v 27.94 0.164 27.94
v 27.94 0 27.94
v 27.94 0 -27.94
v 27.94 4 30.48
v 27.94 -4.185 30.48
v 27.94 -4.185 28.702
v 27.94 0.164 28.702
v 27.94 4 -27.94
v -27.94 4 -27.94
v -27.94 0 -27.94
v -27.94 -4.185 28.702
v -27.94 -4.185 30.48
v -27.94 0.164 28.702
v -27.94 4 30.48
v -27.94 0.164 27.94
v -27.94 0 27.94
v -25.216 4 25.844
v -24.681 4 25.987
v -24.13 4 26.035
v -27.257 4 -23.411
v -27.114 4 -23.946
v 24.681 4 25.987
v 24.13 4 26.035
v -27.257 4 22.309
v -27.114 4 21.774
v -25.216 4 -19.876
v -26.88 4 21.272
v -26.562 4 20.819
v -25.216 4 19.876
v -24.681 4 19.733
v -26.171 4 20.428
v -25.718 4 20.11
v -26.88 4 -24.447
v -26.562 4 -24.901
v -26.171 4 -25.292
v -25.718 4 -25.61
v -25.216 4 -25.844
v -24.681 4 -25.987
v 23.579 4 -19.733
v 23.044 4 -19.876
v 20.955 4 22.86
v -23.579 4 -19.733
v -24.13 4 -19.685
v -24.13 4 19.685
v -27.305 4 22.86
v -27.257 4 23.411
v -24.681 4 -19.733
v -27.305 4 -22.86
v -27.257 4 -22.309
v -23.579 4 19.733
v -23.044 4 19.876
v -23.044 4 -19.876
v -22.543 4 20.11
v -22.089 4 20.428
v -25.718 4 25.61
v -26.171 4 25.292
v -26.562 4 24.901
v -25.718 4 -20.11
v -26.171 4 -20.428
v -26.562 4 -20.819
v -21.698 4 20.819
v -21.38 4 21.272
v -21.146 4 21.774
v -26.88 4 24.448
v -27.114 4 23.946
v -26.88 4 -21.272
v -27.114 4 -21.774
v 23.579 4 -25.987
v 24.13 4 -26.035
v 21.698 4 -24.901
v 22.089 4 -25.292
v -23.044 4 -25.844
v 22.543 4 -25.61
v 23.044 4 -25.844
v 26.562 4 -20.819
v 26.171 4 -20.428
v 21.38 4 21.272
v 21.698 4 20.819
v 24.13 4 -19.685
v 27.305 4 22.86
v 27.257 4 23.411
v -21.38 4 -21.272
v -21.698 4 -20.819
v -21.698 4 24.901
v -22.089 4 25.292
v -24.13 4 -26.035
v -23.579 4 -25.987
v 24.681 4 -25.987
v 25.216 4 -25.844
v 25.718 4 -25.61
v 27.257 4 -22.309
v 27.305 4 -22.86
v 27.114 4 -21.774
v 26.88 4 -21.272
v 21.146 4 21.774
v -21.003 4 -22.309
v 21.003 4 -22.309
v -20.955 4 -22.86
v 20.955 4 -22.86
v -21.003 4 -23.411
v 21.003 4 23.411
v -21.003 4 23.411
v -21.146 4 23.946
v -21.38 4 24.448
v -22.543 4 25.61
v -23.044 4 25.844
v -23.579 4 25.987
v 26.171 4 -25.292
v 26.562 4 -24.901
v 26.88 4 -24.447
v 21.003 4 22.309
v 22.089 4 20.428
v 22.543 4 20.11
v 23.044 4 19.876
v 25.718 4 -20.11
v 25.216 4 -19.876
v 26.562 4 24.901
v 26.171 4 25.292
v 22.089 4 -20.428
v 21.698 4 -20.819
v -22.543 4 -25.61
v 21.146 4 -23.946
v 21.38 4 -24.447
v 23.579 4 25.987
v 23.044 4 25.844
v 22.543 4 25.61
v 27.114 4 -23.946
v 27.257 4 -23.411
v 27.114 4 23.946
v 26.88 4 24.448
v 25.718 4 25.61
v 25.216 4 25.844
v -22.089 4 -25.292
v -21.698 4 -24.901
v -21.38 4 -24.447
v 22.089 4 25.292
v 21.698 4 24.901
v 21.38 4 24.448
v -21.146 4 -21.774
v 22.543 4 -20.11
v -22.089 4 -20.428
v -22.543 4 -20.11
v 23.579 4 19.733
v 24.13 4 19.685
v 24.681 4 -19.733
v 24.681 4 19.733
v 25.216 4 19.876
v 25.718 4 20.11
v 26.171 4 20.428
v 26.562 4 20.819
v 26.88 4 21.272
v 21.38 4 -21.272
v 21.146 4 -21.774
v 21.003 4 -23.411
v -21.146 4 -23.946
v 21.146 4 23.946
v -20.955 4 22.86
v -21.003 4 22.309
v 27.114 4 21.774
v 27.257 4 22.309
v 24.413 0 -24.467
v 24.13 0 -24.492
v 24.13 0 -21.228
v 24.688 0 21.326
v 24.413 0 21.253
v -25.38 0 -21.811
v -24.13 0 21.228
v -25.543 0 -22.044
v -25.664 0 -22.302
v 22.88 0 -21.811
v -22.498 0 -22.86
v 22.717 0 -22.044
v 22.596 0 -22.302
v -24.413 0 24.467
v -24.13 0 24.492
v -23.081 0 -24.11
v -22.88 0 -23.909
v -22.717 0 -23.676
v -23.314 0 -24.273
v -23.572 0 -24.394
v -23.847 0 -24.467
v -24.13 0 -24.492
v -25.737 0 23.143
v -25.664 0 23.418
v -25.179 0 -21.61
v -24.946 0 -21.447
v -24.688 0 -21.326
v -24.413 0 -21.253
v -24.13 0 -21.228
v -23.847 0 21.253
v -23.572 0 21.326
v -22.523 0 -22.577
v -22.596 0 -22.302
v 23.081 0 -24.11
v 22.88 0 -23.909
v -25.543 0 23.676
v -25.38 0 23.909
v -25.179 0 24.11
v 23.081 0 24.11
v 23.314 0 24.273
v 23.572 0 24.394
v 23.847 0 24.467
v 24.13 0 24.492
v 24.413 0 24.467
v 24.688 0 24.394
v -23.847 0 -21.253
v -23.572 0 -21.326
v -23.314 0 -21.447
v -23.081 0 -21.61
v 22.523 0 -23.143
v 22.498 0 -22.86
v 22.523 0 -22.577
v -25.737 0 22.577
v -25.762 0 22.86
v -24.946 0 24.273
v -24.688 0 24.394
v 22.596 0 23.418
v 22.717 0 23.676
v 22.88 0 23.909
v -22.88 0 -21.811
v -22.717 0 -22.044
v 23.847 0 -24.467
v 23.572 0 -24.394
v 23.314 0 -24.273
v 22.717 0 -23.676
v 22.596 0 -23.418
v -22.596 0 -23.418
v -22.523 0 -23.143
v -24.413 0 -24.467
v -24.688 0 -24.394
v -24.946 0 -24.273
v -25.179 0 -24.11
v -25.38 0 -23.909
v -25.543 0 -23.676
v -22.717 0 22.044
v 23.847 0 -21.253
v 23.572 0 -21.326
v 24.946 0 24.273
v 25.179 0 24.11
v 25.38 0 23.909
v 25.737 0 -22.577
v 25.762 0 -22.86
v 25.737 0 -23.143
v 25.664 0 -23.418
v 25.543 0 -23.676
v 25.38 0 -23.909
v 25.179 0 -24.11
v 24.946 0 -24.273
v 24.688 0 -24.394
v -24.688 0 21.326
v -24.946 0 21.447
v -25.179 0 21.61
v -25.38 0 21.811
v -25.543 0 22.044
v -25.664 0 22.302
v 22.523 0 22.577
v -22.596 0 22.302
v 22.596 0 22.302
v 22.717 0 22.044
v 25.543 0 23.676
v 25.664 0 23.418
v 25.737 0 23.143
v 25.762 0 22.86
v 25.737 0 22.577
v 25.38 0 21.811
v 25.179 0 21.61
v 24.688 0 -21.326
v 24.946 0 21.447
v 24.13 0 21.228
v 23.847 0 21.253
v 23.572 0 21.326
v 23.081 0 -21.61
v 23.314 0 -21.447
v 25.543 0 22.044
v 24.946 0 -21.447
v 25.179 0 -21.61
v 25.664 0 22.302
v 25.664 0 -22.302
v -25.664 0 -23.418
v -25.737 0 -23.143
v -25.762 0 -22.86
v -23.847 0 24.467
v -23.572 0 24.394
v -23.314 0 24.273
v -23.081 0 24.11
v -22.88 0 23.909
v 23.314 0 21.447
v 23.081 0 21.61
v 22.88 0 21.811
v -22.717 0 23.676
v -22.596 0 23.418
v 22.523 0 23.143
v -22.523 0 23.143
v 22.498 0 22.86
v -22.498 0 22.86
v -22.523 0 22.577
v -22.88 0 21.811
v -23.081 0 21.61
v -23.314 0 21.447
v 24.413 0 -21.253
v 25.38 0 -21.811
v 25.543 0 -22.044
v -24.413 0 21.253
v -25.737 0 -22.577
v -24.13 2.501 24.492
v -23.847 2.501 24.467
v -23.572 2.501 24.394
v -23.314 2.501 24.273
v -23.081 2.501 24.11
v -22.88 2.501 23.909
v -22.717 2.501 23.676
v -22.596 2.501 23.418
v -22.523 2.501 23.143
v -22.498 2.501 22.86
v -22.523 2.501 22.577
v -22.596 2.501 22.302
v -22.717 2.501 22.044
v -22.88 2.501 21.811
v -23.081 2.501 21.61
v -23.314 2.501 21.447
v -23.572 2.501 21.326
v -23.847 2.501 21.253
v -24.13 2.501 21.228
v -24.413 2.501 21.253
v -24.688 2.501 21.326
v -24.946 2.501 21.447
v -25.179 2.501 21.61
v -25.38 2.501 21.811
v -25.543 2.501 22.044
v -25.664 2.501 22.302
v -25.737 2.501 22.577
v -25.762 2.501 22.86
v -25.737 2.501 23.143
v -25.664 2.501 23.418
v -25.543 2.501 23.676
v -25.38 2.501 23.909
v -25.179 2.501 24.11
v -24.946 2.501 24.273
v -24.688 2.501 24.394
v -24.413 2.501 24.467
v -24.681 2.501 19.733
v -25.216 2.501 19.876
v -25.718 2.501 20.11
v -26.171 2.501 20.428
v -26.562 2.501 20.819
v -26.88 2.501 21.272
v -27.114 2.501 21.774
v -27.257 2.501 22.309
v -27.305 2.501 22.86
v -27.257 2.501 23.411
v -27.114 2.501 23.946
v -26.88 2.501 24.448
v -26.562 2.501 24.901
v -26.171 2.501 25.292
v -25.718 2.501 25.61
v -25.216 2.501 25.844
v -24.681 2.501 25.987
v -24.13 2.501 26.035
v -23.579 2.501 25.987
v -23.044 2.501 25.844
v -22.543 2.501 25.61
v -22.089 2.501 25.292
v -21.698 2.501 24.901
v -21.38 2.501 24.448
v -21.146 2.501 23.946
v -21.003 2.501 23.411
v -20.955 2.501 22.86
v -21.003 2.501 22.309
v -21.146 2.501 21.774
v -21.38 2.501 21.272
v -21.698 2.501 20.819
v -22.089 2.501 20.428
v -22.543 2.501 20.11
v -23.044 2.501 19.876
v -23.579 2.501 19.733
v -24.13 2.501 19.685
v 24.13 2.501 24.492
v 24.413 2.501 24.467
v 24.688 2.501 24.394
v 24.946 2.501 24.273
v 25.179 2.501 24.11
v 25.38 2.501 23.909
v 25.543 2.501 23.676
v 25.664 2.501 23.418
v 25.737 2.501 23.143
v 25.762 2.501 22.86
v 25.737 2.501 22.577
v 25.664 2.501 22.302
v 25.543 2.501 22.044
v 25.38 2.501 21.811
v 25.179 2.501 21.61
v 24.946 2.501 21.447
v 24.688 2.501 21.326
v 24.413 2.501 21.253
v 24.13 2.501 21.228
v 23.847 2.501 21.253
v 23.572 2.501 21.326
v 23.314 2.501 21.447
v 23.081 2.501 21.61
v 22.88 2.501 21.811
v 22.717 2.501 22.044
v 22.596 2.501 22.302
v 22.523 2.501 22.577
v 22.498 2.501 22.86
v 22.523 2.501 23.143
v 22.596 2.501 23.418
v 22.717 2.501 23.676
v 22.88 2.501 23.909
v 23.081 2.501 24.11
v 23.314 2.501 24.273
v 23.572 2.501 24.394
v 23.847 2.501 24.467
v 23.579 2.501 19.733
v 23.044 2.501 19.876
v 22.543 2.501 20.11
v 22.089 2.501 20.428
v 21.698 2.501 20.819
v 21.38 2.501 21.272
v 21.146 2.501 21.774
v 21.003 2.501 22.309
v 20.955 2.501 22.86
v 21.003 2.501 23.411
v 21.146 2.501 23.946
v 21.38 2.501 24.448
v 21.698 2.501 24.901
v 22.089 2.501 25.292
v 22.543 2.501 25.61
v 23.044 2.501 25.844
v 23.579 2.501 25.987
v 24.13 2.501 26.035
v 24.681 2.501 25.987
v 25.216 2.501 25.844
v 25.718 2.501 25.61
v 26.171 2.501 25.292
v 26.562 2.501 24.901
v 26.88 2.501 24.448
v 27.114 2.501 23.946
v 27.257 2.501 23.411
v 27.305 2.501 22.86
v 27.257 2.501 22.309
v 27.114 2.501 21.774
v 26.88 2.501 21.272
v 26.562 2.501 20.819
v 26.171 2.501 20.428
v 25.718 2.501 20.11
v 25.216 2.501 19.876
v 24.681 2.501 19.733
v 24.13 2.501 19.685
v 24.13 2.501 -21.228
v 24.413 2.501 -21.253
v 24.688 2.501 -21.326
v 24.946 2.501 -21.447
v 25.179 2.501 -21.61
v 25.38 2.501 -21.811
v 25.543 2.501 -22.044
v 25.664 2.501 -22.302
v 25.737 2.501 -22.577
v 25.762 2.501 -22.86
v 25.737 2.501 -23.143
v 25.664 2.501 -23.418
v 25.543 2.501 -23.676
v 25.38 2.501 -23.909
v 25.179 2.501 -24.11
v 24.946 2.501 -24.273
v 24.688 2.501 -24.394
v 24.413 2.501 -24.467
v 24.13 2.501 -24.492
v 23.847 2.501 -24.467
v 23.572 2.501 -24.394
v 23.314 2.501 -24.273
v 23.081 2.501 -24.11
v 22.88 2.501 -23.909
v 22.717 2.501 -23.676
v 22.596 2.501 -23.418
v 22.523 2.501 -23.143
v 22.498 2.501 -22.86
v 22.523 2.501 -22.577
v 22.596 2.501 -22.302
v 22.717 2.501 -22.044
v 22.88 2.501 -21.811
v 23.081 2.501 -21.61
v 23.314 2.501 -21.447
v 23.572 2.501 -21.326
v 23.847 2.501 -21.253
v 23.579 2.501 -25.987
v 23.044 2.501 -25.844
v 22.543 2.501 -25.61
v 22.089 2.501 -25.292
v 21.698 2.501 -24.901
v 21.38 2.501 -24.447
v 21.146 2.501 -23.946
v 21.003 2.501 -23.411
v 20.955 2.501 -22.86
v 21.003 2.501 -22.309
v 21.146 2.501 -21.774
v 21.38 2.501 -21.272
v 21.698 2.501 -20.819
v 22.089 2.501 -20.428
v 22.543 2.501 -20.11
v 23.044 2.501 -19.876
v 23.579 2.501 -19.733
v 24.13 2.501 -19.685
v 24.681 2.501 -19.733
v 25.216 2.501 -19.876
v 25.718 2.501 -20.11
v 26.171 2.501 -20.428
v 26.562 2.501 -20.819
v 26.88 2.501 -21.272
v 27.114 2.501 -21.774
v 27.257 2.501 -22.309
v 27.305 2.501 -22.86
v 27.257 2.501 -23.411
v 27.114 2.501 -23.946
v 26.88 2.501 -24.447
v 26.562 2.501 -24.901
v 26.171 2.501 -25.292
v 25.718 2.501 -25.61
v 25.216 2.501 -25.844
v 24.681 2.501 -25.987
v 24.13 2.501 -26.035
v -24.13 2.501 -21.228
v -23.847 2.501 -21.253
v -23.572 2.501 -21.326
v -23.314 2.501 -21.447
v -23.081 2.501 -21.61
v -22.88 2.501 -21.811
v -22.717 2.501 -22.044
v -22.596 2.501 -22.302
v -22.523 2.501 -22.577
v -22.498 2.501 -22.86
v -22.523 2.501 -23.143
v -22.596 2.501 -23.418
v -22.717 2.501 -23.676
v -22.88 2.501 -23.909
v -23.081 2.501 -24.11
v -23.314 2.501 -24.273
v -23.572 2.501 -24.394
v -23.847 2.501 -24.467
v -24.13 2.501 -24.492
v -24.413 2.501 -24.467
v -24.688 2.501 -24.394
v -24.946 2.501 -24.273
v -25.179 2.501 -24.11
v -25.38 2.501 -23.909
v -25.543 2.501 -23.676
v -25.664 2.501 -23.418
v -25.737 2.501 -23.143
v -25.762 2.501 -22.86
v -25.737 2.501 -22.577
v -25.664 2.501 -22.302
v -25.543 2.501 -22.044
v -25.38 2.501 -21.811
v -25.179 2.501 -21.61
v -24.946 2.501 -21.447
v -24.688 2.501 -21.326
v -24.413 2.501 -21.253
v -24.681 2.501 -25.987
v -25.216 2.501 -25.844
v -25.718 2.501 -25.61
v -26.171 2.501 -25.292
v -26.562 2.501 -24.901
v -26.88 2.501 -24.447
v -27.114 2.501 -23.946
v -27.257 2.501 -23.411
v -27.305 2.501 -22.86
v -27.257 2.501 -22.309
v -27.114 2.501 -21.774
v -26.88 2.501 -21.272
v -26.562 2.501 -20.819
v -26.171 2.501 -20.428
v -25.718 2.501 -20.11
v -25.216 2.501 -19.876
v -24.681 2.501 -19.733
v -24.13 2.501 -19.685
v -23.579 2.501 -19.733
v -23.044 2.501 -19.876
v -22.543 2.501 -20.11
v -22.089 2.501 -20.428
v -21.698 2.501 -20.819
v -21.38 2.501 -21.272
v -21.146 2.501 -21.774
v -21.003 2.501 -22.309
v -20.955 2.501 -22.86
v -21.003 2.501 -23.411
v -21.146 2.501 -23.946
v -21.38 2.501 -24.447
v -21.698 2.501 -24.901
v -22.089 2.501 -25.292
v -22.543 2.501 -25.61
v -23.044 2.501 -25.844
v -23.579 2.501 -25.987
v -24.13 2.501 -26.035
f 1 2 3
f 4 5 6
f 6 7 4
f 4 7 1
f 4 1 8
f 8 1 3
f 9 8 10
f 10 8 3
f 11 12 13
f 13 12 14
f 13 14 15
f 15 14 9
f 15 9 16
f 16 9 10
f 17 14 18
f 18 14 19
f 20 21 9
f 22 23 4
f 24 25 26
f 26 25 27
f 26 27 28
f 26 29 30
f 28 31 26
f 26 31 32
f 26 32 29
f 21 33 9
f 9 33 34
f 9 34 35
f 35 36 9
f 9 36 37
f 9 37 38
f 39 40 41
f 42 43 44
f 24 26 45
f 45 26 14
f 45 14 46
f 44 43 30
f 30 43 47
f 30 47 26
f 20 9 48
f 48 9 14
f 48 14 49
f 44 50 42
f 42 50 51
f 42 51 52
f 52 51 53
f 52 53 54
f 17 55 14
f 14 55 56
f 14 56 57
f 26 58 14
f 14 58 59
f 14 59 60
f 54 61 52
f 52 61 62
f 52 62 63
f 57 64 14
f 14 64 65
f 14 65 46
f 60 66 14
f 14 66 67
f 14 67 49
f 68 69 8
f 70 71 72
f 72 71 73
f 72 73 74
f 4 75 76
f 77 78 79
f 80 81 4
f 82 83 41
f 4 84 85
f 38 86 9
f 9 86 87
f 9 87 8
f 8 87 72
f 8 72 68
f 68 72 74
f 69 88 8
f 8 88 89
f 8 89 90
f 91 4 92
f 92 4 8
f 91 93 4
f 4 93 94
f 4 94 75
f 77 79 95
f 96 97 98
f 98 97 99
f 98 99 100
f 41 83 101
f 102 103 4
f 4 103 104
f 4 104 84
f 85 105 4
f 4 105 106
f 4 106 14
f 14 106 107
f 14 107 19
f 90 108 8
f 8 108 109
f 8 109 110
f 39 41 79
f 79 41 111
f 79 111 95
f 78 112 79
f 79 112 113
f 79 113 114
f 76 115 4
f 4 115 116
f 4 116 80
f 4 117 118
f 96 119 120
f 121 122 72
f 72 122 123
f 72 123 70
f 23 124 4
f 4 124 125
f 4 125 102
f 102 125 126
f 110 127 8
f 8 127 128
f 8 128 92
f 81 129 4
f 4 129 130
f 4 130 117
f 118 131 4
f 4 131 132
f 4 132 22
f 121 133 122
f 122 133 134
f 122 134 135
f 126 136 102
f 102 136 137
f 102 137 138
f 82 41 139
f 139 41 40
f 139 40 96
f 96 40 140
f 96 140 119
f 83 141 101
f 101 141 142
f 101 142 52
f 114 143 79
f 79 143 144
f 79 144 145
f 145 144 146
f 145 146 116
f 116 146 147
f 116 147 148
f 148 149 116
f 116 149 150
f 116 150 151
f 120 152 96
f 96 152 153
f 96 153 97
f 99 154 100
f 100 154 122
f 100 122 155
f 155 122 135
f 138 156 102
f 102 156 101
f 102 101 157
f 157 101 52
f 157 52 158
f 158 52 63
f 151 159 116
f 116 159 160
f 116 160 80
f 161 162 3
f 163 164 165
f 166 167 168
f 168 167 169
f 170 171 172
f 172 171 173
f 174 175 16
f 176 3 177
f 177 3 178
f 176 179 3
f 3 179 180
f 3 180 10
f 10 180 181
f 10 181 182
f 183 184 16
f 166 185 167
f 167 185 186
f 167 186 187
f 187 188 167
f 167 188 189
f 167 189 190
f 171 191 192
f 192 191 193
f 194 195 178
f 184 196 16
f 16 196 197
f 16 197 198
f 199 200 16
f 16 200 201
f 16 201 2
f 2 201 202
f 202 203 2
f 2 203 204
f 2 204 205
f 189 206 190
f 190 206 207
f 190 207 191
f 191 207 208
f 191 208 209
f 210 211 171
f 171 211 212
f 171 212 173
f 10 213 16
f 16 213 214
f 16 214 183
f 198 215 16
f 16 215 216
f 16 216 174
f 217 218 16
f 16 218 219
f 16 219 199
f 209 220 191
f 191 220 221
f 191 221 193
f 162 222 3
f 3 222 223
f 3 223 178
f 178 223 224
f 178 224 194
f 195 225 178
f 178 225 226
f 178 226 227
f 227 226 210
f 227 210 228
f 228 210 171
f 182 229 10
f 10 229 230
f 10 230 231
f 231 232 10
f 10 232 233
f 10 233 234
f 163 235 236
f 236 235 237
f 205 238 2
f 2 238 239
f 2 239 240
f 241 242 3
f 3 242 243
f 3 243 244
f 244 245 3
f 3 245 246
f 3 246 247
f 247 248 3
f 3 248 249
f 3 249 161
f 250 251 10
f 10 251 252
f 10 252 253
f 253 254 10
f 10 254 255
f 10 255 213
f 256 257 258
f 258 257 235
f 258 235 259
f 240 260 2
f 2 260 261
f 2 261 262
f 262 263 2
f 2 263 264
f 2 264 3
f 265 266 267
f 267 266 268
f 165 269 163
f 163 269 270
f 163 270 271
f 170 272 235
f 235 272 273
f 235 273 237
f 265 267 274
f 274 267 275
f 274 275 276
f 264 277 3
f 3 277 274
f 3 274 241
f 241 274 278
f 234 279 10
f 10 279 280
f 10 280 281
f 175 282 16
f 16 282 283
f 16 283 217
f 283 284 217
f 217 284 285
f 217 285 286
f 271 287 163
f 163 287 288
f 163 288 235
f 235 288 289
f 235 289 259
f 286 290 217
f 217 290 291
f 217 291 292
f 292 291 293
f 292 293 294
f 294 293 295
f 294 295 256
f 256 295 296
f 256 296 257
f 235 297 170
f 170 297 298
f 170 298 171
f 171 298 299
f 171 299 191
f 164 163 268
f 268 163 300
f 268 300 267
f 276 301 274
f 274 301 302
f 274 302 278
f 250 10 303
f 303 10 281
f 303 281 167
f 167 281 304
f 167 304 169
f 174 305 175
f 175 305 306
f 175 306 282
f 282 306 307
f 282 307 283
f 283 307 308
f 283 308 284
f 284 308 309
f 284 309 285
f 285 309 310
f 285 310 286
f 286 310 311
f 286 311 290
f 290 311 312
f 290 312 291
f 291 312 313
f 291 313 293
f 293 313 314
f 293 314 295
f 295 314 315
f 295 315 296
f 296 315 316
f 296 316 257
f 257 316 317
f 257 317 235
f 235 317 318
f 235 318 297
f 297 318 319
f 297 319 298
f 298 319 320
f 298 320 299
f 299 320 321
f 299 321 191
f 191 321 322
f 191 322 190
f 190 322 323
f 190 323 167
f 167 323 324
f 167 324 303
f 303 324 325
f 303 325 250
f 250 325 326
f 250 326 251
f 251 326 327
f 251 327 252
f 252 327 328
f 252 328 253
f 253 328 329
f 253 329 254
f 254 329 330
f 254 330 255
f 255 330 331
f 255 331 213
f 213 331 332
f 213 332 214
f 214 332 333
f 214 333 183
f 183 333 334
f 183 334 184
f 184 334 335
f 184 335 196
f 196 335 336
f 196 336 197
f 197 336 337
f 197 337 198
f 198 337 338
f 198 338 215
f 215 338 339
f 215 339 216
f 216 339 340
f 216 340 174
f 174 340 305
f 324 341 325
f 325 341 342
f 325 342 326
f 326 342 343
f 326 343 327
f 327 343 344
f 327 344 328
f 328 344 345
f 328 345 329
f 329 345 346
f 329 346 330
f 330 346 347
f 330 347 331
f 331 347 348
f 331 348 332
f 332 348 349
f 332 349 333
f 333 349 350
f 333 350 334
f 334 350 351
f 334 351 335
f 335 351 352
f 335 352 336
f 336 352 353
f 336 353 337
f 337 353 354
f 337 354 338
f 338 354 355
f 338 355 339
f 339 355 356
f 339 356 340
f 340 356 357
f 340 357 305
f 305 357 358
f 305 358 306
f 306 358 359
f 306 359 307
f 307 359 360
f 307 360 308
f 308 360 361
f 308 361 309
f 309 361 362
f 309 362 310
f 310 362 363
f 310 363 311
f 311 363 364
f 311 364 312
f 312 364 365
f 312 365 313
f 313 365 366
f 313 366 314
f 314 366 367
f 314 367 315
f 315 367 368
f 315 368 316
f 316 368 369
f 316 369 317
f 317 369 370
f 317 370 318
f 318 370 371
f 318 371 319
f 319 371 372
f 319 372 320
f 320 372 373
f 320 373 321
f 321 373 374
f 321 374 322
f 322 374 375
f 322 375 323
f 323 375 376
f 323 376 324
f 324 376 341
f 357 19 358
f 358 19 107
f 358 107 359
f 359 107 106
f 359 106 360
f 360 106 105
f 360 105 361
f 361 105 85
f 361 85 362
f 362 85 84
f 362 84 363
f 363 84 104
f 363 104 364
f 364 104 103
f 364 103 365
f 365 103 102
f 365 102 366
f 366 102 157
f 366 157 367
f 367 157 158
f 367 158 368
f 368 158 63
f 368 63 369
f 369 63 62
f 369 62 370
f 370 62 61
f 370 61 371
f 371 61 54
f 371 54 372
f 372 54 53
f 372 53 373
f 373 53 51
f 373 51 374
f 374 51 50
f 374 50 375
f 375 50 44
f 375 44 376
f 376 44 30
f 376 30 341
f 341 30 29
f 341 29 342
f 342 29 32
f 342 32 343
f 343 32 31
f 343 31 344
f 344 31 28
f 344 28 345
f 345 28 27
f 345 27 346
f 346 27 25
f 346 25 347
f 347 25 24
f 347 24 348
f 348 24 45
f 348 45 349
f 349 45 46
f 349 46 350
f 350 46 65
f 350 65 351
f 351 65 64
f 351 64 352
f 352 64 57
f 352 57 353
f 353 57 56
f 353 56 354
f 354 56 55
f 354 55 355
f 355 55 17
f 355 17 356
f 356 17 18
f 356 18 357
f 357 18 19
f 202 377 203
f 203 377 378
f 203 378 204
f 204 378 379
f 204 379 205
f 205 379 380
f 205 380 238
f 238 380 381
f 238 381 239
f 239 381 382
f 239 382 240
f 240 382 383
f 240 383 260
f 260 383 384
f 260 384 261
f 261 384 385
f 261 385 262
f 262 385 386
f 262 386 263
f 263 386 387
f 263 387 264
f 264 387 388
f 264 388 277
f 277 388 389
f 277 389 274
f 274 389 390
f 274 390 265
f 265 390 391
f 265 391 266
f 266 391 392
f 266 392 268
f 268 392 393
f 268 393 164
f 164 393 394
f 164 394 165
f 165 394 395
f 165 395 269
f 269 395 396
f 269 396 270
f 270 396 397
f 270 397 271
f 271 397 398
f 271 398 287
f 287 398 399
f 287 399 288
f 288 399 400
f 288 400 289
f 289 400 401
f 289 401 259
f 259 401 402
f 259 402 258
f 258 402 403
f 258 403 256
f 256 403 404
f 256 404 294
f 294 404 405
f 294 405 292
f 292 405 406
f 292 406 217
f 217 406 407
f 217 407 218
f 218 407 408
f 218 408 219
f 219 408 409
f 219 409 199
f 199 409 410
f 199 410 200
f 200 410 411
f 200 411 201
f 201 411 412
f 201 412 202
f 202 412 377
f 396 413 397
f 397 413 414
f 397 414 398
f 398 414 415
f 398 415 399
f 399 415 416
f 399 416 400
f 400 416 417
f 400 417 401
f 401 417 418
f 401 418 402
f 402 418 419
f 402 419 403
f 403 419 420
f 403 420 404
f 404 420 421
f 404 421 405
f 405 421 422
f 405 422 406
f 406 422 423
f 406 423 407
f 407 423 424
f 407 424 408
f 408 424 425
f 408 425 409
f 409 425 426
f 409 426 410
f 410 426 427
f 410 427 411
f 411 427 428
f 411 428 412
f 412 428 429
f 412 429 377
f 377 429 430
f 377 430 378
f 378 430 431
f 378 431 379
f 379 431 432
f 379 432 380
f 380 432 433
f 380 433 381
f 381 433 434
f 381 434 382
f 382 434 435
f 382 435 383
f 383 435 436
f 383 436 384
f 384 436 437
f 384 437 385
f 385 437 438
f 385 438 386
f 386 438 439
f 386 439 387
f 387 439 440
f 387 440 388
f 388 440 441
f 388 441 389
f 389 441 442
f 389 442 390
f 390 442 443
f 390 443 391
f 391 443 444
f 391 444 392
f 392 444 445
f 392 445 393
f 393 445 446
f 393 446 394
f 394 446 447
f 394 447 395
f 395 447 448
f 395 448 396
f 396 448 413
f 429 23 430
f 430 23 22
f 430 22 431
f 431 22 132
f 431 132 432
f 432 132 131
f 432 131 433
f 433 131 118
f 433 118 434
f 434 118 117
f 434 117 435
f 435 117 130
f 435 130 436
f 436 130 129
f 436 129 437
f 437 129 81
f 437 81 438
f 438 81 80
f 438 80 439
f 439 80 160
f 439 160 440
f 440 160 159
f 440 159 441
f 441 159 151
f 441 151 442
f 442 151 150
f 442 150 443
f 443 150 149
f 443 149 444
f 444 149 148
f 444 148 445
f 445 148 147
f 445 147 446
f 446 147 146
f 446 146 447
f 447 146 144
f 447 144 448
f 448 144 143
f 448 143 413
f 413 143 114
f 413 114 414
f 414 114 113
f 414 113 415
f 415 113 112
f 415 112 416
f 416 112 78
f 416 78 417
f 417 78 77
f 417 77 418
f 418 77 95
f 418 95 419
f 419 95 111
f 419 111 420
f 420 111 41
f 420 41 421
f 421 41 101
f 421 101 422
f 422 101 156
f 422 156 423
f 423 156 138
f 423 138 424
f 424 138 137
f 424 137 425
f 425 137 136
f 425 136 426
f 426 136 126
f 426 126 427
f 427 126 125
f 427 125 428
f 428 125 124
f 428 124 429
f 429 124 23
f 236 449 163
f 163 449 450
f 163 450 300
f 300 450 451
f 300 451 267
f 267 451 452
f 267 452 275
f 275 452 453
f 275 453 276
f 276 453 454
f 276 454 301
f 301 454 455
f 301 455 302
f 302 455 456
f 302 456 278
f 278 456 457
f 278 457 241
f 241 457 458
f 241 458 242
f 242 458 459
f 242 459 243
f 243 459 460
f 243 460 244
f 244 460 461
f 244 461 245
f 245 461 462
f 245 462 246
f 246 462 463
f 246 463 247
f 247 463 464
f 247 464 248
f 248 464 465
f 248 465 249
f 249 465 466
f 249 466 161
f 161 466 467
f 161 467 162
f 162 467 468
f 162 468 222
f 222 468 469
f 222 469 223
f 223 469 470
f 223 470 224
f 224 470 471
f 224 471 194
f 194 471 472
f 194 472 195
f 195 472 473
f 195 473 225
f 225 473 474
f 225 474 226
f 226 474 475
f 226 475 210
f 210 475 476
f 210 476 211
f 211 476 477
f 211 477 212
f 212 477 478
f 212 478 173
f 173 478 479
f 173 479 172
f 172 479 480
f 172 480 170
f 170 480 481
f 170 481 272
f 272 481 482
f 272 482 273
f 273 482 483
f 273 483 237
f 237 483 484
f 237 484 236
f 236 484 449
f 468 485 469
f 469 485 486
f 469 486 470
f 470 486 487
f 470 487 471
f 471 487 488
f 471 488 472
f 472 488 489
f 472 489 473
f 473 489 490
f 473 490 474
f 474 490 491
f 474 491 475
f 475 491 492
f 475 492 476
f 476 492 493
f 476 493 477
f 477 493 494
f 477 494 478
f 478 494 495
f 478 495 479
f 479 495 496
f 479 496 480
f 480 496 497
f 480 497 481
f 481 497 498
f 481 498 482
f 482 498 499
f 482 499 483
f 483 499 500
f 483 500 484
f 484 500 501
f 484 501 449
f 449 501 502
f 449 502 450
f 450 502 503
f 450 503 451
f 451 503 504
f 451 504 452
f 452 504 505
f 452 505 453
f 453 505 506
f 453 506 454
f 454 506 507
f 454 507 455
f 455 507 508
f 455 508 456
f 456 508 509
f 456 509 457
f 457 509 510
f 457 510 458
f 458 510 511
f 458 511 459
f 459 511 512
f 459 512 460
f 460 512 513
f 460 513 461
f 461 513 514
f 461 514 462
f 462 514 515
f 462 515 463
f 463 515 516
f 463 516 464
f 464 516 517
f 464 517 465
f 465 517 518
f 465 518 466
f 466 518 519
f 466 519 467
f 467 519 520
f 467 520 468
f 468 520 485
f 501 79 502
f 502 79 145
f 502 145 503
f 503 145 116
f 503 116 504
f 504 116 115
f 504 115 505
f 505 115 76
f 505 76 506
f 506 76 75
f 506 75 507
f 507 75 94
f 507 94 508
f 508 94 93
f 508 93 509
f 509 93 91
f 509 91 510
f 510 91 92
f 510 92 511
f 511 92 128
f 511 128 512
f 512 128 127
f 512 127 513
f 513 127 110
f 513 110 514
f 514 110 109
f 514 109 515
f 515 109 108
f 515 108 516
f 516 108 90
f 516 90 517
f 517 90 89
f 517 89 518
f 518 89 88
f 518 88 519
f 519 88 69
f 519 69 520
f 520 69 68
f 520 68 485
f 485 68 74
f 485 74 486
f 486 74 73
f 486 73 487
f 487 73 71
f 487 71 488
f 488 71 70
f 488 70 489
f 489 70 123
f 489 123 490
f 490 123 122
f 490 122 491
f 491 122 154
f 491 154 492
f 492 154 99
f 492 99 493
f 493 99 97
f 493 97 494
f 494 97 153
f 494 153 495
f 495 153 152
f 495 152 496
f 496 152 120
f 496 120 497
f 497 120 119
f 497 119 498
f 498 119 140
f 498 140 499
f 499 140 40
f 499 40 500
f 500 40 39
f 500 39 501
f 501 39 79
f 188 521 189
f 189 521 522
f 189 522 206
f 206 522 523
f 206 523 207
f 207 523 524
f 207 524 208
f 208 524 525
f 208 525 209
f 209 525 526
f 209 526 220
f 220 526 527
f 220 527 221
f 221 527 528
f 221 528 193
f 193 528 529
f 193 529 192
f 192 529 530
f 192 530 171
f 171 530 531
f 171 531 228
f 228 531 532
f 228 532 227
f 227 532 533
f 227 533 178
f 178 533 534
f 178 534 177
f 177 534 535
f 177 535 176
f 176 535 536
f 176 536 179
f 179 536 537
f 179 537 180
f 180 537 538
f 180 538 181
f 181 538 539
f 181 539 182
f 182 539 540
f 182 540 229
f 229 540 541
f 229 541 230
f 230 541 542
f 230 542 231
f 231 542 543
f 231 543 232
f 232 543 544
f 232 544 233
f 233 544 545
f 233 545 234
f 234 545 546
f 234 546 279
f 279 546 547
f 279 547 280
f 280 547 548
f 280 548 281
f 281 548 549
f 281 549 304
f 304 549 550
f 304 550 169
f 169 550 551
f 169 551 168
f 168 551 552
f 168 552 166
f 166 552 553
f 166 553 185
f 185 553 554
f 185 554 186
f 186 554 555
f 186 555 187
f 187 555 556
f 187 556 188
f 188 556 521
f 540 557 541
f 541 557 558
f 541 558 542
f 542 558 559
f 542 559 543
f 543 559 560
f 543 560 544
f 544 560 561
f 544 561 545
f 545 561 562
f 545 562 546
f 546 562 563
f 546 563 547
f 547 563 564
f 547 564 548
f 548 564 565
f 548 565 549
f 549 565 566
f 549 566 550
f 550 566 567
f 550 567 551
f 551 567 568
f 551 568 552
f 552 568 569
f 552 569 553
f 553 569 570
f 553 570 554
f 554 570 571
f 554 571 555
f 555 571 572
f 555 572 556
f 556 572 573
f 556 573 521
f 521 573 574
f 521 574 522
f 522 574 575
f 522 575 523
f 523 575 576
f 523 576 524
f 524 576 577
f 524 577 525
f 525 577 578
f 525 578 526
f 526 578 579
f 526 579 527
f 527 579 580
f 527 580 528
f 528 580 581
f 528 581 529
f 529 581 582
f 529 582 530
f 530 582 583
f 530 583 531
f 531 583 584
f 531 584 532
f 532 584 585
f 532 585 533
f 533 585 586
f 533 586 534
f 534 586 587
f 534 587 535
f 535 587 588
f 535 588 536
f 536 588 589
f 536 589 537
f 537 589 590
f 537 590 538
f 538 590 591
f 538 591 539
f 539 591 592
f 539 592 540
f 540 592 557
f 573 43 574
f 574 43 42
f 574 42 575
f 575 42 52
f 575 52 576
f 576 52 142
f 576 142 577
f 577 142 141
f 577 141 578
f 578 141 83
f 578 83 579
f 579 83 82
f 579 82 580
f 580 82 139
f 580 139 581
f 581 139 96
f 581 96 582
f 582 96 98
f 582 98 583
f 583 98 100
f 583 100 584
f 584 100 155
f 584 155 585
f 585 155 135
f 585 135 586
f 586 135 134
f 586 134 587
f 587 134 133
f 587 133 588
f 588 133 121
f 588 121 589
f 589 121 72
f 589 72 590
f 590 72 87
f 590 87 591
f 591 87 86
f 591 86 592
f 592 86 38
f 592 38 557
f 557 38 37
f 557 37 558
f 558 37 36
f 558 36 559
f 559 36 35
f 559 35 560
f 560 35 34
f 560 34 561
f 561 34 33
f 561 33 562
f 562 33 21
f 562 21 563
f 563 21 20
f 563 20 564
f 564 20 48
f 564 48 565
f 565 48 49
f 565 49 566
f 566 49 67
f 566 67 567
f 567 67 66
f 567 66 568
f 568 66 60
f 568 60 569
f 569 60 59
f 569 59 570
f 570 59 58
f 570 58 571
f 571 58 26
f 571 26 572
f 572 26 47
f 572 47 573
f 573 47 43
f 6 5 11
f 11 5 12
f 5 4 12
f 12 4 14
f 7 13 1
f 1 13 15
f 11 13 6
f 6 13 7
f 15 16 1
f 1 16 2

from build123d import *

# Parameters (mm, degrees)
SKETCH1_W                                      = 55.88
SKETCH1_H                                      = 55.88
BOSS_EXTRUDE1_DEPTH                            = 4
CBORE_FOR_4_BUTTON_HEAD_CAP_SCREW1_D           = 3.2639
CBORE_FOR_4_BUTTON_HEAD_CAP_SCREW1_CBORE_D     = 6.35
CBORE_FOR_4_BUTTON_HEAD_CAP_SCREW1_CBORE_DEPTH = 1.4986
SKETCH4_W                                      = 55.88
SKETCH4_H                                      = 8.184570626
BOSS_EXTRUDE2_DEPTH                            = 2.54
SKETCH5_W                                      = 55.88
SKETCH5_H                                      = 4.348891515
CUT_EXTRUDE1_DEPTH                             = 0.762


with BuildPart() as part:
    # Sketch1 → Boss-Extrude1 (new body)
    with BuildSketch(Plane(origin=(0, 0, 0), x_dir=(1, 0, 0), z_dir=(0, 1, 0))):
        Rectangle(SKETCH1_W, SKETCH1_H)
    extrude(amount=BOSS_EXTRUDE1_DEPTH)

    # CBORE for #4 Button Head Cap Screw1 (through all)
    with Locations(Plane(origin=(0, 4, 0), x_dir=(1, 0, 0), z_dir=(0, 1, 0))):
        with Locations((-24.13, 22.86), (24.13, 22.86), (24.13, -22.86), (-24.13, -22.86)):
            CounterBoreHole(CBORE_FOR_4_BUTTON_HEAD_CAP_SCREW1_D / 2, CBORE_FOR_4_BUTTON_HEAD_CAP_SCREW1_CBORE_D / 2, CBORE_FOR_4_BUTTON_HEAD_CAP_SCREW1_CBORE_DEPTH)

    # Sketch4 → Boss-Extrude2 (add)
    with BuildSketch(Plane.XY.offset(27.94)):
        with Locations((0, -0.092285313)):
            Rectangle(SKETCH4_W, SKETCH4_H)
    extrude(amount=BOSS_EXTRUDE2_DEPTH)

    # Sketch5 → Cut-Extrude1 (cut)
    with BuildSketch(Plane(origin=(0, 0, 27.94), x_dir=(-1, 0, 0), z_dir=(0, 0, -1))):
        with Locations((0, -2.010124869)):
            Rectangle(SKETCH5_W, SKETCH5_H)
    extrude(amount=-CUT_EXTRUDE1_DEPTH, mode=Mode.SUBTRACT)


solid = part.part
